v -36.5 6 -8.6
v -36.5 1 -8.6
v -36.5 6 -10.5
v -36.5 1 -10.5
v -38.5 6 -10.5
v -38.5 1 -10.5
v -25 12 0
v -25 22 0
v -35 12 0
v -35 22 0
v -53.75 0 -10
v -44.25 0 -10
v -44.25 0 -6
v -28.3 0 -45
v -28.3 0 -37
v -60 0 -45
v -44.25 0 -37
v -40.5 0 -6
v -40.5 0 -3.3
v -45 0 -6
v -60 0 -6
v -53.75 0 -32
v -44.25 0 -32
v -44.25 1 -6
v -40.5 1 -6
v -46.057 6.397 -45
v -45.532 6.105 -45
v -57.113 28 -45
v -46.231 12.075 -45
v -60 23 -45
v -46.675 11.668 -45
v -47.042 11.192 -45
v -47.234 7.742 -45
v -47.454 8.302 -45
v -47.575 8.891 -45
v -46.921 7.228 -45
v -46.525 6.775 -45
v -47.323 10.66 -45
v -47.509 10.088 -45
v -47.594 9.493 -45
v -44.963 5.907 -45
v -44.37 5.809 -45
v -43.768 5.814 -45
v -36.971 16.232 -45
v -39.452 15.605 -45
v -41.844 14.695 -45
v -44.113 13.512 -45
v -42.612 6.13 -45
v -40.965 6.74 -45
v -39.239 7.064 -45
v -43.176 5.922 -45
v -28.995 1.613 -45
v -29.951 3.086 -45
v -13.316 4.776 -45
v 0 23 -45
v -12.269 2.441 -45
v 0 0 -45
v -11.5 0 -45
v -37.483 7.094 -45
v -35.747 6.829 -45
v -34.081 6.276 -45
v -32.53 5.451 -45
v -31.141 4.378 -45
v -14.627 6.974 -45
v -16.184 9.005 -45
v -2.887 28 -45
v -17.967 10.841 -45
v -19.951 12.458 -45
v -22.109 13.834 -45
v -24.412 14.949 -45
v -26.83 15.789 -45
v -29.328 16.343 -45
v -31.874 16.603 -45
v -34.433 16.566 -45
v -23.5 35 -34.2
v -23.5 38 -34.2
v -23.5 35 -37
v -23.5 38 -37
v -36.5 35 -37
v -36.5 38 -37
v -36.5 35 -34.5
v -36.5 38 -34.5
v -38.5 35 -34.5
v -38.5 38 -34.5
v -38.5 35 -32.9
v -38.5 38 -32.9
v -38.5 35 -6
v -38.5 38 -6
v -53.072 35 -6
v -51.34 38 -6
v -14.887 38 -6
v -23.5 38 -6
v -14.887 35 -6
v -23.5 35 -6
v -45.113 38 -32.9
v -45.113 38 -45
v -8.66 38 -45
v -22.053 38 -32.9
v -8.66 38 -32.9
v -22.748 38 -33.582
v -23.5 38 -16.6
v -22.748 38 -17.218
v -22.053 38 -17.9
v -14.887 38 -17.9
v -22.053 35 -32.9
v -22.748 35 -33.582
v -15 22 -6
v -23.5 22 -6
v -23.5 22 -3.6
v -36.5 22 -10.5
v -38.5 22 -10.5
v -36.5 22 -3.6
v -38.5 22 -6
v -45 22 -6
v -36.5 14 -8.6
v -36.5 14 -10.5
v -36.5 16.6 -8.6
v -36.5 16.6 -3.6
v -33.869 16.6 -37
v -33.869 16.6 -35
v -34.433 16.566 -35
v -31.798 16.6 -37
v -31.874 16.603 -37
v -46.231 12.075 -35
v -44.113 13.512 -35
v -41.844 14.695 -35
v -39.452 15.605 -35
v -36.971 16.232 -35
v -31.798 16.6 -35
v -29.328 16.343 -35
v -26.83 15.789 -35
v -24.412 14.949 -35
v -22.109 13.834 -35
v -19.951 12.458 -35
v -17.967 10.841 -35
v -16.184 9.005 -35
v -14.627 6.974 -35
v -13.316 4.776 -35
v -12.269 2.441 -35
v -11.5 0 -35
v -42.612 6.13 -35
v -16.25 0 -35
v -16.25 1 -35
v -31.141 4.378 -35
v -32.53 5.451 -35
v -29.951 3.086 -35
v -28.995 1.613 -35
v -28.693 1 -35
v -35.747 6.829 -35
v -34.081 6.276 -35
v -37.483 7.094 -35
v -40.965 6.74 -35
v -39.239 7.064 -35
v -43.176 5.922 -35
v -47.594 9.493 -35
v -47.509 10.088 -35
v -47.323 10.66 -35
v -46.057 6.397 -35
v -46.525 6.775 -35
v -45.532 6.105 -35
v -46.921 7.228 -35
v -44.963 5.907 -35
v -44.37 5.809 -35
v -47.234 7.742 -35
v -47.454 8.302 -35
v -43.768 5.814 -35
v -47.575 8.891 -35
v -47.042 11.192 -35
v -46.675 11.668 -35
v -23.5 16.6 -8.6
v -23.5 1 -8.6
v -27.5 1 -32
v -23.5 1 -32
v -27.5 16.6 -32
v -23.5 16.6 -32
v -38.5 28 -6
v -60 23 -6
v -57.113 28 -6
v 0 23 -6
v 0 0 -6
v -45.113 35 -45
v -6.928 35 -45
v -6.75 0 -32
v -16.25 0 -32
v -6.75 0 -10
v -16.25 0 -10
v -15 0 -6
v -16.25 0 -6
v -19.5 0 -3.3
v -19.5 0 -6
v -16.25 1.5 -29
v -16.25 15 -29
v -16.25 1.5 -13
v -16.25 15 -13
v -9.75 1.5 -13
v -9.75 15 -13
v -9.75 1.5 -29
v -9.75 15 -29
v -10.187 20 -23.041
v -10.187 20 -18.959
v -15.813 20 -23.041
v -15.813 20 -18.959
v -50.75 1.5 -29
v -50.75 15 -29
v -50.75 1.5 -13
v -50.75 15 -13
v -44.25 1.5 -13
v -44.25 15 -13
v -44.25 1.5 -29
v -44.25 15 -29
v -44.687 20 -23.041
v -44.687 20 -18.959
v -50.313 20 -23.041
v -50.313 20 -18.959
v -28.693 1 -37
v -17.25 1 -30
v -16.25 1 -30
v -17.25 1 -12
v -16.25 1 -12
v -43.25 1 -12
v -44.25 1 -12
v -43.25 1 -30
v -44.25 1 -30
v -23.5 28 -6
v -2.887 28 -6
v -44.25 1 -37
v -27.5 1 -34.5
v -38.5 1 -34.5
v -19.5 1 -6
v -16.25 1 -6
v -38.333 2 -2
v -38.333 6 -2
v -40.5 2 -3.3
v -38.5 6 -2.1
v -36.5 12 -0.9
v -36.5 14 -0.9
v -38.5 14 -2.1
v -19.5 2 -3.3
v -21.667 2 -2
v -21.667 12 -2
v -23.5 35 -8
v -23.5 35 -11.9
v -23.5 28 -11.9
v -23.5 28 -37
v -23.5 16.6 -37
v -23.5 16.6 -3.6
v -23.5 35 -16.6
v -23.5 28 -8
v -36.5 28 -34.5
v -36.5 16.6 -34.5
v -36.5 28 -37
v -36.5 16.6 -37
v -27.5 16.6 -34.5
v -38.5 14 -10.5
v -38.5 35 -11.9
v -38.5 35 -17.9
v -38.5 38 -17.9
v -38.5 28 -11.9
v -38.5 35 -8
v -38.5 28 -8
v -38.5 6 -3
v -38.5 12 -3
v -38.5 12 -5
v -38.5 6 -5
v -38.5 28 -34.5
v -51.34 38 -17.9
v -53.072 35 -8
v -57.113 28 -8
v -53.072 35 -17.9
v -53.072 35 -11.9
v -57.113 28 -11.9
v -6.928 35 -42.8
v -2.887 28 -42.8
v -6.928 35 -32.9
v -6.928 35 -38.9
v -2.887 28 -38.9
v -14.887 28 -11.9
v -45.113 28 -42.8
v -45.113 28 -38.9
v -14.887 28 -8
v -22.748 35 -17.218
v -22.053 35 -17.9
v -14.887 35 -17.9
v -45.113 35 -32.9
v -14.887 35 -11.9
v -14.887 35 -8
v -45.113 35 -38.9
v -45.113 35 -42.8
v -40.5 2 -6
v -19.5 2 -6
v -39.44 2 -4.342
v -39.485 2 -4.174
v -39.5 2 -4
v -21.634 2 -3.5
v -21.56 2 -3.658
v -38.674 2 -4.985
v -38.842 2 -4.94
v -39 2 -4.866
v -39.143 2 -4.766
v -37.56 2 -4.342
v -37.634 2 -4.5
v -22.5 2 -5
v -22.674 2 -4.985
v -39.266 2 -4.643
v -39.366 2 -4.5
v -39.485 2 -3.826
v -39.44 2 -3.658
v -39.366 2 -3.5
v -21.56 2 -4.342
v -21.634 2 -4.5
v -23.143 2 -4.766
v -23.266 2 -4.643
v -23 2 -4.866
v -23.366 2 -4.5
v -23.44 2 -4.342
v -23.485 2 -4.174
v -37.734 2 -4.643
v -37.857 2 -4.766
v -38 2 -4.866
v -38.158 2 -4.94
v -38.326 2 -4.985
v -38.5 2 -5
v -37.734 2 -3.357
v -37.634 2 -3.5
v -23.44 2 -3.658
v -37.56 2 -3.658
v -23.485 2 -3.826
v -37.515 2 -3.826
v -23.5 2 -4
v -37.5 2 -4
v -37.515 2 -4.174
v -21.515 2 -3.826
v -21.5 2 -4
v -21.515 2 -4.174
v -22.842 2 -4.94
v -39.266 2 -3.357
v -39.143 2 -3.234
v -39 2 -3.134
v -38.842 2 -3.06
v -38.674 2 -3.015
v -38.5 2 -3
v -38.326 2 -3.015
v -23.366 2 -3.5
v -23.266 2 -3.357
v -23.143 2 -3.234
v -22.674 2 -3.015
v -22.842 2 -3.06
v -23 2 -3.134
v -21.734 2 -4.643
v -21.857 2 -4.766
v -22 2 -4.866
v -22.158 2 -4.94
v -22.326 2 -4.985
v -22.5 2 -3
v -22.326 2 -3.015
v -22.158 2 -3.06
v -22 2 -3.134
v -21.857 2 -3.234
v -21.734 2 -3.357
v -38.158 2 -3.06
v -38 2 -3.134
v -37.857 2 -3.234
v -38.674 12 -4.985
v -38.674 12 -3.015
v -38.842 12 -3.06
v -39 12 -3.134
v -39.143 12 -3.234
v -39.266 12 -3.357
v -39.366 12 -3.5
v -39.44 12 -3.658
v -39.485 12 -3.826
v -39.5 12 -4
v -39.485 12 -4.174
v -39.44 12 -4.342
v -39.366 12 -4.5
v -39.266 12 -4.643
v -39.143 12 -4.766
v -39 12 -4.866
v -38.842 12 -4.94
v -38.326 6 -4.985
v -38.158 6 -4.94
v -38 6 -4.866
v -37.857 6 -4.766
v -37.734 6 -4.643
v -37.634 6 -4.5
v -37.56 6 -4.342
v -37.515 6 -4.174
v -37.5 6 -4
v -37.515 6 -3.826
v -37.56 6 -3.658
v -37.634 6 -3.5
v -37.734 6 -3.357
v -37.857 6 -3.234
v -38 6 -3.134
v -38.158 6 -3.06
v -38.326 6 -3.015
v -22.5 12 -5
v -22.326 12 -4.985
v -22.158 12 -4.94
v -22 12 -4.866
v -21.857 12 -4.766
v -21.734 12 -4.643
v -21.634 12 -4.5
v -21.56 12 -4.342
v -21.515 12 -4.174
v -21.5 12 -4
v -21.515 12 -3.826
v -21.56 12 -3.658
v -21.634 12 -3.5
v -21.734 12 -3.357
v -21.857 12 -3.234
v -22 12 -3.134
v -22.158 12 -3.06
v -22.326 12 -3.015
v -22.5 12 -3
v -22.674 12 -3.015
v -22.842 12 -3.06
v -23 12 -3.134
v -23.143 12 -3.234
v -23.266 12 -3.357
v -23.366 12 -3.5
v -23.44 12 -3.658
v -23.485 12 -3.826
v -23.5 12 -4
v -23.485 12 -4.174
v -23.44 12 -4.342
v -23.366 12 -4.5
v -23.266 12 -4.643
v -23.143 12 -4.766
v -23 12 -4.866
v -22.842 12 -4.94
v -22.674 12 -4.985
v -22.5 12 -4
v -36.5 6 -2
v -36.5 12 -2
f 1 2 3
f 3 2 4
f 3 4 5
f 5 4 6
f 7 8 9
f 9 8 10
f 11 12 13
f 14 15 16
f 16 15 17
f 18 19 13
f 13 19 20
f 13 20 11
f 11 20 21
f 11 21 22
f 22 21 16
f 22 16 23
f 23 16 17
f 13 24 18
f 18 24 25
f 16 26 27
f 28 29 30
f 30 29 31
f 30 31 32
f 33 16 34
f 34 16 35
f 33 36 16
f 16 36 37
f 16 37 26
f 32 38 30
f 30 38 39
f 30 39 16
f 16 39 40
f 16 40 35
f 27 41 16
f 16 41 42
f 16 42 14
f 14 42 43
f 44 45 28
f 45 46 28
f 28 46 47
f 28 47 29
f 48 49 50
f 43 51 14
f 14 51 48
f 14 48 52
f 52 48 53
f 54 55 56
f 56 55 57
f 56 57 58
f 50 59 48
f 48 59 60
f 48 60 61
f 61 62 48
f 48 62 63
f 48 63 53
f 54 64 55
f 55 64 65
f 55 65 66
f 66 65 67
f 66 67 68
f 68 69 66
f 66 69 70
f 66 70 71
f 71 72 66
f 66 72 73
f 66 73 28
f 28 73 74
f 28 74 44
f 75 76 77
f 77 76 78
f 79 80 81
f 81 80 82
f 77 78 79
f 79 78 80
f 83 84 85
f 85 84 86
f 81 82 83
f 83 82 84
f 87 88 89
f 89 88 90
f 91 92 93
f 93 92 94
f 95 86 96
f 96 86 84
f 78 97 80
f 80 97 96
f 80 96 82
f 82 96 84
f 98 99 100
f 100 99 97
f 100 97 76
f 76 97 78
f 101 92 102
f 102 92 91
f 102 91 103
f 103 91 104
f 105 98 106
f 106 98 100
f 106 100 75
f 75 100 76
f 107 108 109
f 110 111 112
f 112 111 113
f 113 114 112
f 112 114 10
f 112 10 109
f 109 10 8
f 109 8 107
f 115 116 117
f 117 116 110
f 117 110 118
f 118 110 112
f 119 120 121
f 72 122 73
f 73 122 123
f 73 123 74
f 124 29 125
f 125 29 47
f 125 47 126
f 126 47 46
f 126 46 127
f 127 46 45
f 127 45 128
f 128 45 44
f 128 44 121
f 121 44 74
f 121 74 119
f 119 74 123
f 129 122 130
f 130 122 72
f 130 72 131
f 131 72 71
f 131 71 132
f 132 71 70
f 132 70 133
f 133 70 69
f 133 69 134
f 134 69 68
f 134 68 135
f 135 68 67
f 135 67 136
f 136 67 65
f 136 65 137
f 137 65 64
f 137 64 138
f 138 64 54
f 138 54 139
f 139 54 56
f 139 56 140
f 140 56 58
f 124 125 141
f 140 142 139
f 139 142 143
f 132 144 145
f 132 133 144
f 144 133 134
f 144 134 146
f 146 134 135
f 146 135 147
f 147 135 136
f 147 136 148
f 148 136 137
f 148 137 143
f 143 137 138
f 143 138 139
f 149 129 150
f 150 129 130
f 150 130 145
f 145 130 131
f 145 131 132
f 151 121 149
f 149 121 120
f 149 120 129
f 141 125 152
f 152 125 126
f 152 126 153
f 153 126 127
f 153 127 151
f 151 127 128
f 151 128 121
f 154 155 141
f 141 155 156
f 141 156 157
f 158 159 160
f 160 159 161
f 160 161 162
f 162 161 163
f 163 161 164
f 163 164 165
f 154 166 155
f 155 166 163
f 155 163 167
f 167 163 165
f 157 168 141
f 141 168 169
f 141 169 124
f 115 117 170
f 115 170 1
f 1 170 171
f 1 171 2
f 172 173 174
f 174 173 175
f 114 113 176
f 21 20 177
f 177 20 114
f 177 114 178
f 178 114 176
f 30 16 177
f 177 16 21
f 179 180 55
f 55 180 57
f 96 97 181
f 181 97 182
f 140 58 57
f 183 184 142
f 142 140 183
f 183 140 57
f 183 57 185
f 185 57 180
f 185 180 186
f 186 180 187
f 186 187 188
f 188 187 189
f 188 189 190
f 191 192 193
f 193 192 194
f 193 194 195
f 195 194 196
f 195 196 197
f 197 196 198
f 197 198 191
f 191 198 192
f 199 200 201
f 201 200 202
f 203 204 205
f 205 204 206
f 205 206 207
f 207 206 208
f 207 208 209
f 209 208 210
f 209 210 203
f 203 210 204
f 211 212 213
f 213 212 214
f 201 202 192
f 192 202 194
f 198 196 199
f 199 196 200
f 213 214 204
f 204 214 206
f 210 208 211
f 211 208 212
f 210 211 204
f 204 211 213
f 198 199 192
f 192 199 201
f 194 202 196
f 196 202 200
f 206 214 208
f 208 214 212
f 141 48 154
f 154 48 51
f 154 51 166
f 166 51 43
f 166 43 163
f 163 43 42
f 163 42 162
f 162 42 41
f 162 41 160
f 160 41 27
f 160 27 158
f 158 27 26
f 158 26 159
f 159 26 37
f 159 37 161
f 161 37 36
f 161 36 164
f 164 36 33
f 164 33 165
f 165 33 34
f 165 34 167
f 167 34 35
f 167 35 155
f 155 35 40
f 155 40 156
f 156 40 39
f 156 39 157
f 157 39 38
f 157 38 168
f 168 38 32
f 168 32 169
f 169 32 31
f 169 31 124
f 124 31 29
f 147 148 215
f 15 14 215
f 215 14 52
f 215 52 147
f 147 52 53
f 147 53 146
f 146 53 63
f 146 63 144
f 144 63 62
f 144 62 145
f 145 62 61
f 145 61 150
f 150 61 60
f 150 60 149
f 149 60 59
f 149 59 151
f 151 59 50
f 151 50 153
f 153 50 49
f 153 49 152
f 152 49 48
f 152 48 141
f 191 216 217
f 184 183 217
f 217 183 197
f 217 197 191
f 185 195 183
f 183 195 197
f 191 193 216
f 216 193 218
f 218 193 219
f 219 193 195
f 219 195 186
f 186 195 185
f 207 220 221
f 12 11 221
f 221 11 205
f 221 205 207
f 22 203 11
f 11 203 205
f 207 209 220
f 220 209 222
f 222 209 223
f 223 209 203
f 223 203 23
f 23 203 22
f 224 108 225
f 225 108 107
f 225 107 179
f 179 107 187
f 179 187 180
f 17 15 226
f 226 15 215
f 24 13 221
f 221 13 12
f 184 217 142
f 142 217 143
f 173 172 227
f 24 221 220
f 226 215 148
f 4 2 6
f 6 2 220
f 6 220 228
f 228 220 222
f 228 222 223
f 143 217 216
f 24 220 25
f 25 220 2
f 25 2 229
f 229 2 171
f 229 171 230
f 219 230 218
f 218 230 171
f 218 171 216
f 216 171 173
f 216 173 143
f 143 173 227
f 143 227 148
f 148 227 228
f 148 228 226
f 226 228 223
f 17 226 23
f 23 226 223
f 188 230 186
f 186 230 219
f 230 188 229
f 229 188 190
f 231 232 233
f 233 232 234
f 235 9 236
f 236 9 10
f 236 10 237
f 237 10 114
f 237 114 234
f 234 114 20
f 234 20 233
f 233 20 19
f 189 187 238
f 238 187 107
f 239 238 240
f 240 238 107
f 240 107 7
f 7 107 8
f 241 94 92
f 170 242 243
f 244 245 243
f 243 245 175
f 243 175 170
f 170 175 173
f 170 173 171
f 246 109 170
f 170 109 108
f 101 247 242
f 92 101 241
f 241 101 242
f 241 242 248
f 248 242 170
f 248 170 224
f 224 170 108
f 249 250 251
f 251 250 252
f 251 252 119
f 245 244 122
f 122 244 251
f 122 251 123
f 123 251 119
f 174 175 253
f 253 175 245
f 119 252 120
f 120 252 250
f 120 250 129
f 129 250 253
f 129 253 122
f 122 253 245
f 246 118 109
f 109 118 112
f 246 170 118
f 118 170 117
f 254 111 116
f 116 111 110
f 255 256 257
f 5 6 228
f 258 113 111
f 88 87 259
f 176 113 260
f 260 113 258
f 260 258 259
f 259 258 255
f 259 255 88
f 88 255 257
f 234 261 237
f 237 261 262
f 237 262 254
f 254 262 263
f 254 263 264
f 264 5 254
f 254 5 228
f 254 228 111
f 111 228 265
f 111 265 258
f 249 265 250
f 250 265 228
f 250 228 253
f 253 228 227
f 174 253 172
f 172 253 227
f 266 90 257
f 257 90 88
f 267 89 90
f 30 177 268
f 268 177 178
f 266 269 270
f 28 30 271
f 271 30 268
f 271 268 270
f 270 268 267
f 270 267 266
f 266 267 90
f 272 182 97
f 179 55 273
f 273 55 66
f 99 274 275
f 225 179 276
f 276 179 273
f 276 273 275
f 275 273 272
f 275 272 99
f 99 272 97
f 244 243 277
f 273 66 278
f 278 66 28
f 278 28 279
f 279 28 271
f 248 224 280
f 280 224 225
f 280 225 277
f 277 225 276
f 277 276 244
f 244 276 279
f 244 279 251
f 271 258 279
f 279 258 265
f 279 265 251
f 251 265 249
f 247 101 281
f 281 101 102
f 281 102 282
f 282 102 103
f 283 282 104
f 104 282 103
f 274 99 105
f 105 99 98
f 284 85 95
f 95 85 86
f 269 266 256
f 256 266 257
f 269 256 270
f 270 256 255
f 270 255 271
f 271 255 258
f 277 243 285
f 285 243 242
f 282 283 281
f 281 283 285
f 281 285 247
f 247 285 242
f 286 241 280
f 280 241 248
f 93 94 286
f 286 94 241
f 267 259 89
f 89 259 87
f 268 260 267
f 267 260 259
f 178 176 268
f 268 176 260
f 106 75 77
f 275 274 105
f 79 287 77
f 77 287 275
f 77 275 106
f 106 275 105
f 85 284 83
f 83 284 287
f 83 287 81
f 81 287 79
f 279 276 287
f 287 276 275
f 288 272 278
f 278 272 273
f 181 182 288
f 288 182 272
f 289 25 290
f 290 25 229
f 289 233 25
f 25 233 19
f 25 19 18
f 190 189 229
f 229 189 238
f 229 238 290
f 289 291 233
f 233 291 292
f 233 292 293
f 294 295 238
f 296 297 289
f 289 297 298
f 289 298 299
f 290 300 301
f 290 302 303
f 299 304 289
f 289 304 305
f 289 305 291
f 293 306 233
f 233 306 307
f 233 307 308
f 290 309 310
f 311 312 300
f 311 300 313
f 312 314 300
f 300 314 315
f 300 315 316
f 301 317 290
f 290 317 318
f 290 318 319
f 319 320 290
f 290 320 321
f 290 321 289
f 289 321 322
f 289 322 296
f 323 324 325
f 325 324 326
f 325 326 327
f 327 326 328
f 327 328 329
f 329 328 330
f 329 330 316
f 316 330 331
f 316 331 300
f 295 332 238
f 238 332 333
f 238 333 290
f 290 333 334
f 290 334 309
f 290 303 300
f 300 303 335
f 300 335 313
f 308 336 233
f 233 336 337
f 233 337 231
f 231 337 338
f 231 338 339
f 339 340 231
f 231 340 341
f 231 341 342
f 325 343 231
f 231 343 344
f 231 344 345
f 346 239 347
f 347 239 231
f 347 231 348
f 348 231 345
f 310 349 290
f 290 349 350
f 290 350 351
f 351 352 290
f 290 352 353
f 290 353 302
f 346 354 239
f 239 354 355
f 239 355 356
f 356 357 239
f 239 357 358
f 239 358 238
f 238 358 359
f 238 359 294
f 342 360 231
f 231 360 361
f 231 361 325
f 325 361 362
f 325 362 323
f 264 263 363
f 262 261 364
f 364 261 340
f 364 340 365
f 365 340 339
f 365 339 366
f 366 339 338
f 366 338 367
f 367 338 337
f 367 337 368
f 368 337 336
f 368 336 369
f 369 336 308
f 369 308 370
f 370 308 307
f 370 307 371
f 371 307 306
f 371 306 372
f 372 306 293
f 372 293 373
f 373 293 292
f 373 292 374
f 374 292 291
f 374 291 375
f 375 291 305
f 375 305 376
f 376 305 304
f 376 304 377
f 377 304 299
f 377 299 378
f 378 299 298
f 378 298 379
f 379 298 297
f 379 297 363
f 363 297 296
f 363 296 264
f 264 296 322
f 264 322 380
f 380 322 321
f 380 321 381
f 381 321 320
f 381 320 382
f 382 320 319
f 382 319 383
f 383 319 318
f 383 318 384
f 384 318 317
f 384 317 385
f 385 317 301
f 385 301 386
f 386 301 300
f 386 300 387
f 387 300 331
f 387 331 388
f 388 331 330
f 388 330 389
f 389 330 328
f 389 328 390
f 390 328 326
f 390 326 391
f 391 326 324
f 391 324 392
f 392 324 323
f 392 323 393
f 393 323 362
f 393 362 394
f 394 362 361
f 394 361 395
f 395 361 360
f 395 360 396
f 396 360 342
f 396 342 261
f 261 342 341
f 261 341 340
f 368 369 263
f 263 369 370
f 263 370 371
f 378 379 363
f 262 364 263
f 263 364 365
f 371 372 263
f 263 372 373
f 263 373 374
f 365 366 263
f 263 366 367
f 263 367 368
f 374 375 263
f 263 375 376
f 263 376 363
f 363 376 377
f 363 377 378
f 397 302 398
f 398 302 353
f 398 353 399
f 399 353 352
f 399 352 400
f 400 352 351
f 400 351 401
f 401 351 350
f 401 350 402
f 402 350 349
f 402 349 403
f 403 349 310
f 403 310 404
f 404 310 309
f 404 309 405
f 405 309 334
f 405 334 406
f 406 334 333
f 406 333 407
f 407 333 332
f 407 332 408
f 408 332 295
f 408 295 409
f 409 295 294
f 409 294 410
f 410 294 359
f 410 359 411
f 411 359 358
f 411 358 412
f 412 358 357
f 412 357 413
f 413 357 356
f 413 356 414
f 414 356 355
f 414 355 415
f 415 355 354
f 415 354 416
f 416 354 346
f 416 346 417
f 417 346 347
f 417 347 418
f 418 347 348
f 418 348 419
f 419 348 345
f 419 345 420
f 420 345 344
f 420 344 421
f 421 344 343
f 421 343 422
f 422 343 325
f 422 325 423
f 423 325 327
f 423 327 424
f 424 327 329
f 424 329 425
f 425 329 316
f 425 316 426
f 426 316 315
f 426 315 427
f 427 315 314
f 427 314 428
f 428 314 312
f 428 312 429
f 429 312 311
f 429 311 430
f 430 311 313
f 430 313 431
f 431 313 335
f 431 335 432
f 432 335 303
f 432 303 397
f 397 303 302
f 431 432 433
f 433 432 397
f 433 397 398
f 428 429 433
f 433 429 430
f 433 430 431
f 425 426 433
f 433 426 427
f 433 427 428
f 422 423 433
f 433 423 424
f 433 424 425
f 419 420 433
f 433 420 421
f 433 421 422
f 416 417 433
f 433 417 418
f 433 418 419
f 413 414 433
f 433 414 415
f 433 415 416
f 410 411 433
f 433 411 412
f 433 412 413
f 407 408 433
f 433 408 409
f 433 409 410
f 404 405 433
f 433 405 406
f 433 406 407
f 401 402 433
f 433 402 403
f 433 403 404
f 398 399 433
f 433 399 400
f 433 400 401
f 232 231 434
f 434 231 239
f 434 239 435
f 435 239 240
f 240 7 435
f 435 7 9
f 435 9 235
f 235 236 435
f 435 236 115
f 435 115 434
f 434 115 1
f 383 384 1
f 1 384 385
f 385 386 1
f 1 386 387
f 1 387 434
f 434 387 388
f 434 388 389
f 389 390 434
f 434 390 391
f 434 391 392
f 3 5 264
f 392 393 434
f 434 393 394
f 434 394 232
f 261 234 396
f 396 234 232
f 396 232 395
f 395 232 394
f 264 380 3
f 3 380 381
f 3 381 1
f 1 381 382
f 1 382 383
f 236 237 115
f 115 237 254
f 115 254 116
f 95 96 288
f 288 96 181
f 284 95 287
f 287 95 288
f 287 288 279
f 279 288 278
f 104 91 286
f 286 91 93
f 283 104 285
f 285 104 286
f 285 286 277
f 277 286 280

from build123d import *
from OCP.BRepFilletAPI import BRepFilletAPI_MakeChamfer

# Parameters (mm, degrees)
SKETCH1_W                = 60
SKETCH1_H                = 45
BOSS_EXTRUDE1_DEPTH      = 30
SKETCH2_W                = 6.5
SKETCH2_H                = 16
CUT_EXTRUDE1_DEPTH       = 20
CHAMFER1_SIZE            = 5
CHAMFER1_SIZE2           = 0.437443318
CHAMFER2_SIZE            = 5
CHAMFER2_SIZE2           = 5.958767963
CUT_EXTRUDE2_DEPTH       = 10
CHAMFER3_SIZE            = 3
CHAMFER3_SIZE2           = 1.5
CUT_EXTRUDE3_REACH       = 82.777
SKETCH6_W                = 28
SKETCH6_H                = 31
CUT_EXTRUDE4_DEPTH       = 1
BOSS_EXTRUDE2_DEPTH      = 22
CUT_EXTRUDE5_REACH       = 80.16
SKETCH7_W                = 13
SKETCH7_H                = 23.4
CUT_EXTRUDE6_REACH       = 95.485
CUT_EXTRUDE6_START       = -15.6
SKETCH8_W                = 13
SKETCH8_H                = 5
CUT_EXTRUDE7_REACH       = 80.16
BOSS_EXTRUDE3_DEPTH      = 16
CHAMFER6_SIZE            = 15
CHAMFER6_SIZE2           = 8.660254038
SKETCH14_R               = 11
CUT_EXTRUDE8_DEPTH       = 10
SKETCH15_W               = 70
SKETCH15_H               = 15
CUT_EXTRUDE9_DEPTH       = 10
CUT_EXTRUDE10_DEPTH      = 71.3651192
CUT_EXTRUDE10_DEPTH_BACK = 71.3651192
SKETCH16_W               = 6
SKETCH16_H               = 7
SKETCH16_W_2             = 2
CUT_EXTRUDE11_DEPTH      = 71.3651192
CUT_EXTRUDE11_DEPTH_BACK = 71.3651192
SKETCH17_W               = 6
SKETCH17_H               = 7
SKETCH17_W_2             = 2.2
SKETCH18_W               = 21
SKETCH18_H               = 8
CUT_EXTRUDE12_DEPTH      = 2
SKETCH19_R               = 1
SKETCH19_W               = 18.34106835
SKETCH19_H               = 5.189180314
CUT_EXTRUDE13_DEPTH      = 10
CUT_EXTRUDE14_REACH      = 80.957
SKETCH20_W               = 2
SKETCH20_H               = 8
CUT_EXTRUDE15_REACH      = 86.077
SKETCH21_W               = 16.800854114
SKETCH21_H               = 23.16859679
SKETCH21_W_2             = 25.313746617
SKETCH21_H_2             = 27.258932471


with BuildPart() as part:
    # Sketch1 → Boss-Extrude1 (new body)
    with BuildSketch(Plane(origin=(0, 0, 0), x_dir=(1, 0, 0), z_dir=(0, 1, 0))):
        with Locations((-30, 22.5)):
            Rectangle(SKETCH1_W, SKETCH1_H)
    extrude(amount=BOSS_EXTRUDE1_DEPTH)

    # Sketch2 → Cut-Extrude1 (cut)
    with BuildSketch(Plane(origin=(0, 0, 0), x_dir=(-1, 0, 0), z_dir=(0, -1, 0))):
        with Locations((47.5, 21)):
            Rectangle(SKETCH2_W, SKETCH2_H)
        with Locations((13, 21)):
            Rectangle(SKETCH2_W, SKETCH2_H)
    extrude(amount=-CUT_EXTRUDE1_DEPTH, mode=Mode.SUBTRACT)

    # Chamfer1: one chamfer whose edges measure the first distance from different faces: ONE call of the kernel's chamfer builder (chamfer() names one face for all edges)
    chamfer1_edges_1 = [part.edges().sort_by_distance(p)[0] for p in [
        (-50.75, 20, -21),
    ]]
    chamfer1_side_1 = [part.faces().sort_by_distance(p)[0] for p in [
        (-50.75, 10, -21),
    ]]
    chamfer1_edges_2 = [part.edges().sort_by_distance(p)[0] for p in [
        (-44.25, 20, -21),
    ]]
    chamfer1_side_2 = [part.faces().sort_by_distance(p)[0] for p in [
        (-44.25, 10, -21),
    ]]
    chamfer1_edges_3 = [part.edges().sort_by_distance(p)[0] for p in [
        (-16.25, 20, -21),
    ]]
    chamfer1_side_3 = [part.faces().sort_by_distance(p)[0] for p in [
        (-16.25, 10, -21),
    ]]
    chamfer1_edges_4 = [part.edges().sort_by_distance(p)[0] for p in [
        (-9.75, 20, -21),
    ]]
    chamfer1_side_4 = [part.faces().sort_by_distance(p)[0] for p in [
        (-9.75, 10, -21),
    ]]
    chamfer1 = BRepFilletAPI_MakeChamfer(part.part.solid().wrapped)
    for e in chamfer1_edges_1:
        chamfer1.Add(CHAMFER1_SIZE, CHAMFER1_SIZE2, e.wrapped, chamfer1_side_1[0].wrapped)  # the first distance lies on this face
    for e in chamfer1_edges_2:
        chamfer1.Add(CHAMFER1_SIZE, CHAMFER1_SIZE2, e.wrapped, chamfer1_side_2[0].wrapped)  # the first distance lies on this face
    for e in chamfer1_edges_3:
        chamfer1.Add(CHAMFER1_SIZE, CHAMFER1_SIZE2, e.wrapped, chamfer1_side_3[0].wrapped)  # the first distance lies on this face
    for e in chamfer1_edges_4:
        chamfer1.Add(CHAMFER1_SIZE, CHAMFER1_SIZE2, e.wrapped, chamfer1_side_4[0].wrapped)  # the first distance lies on this face
    add(Compound.cast(chamfer1.Shape()), mode=Mode.REPLACE)

    # Chamfer2: one chamfer whose edges measure the first distance from different faces: ONE call of the kernel's chamfer builder (chamfer() names one face for all edges)
    chamfer2_edges_1 = [part.edges().sort_by_distance(p)[0] for p in [
        (-47.5, 20, -29),
    ]]
    chamfer2_side_1 = [part.faces().sort_by_distance(p)[0] for p in [
        (-47.5, 9.857394508, -29),
    ]]
    chamfer2_edges_2 = [part.edges().sort_by_distance(p)[0] for p in [
        (-13, 20, -29),
    ]]
    chamfer2_side_2 = [part.faces().sort_by_distance(p)[0] for p in [
        (-13, 9.857394508, -29),
    ]]
    chamfer2_edges_3 = [part.edges().sort_by_distance(p)[0] for p in [
        (-13, 20, -13),
    ]]
    chamfer2_side_3 = [part.faces().sort_by_distance(p)[0] for p in [
        (-13, 9.857394508, -13),
    ]]
    chamfer2_edges_4 = [part.edges().sort_by_distance(p)[0] for p in [
        (-47.5, 20, -13),
    ]]
    chamfer2_side_4 = [part.faces().sort_by_distance(p)[0] for p in [
        (-47.5, 9.857394508, -13),
    ]]
    chamfer2 = BRepFilletAPI_MakeChamfer(part.part.solid().wrapped)
    for e in chamfer2_edges_1:
        chamfer2.Add(CHAMFER2_SIZE, CHAMFER2_SIZE2, e.wrapped, chamfer2_side_1[0].wrapped)  # the first distance lies on this face
    for e in chamfer2_edges_2:
        chamfer2.Add(CHAMFER2_SIZE, CHAMFER2_SIZE2, e.wrapped, chamfer2_side_2[0].wrapped)  # the first distance lies on this face
    for e in chamfer2_edges_3:
        chamfer2.Add(CHAMFER2_SIZE, CHAMFER2_SIZE2, e.wrapped, chamfer2_side_3[0].wrapped)  # the first distance lies on this face
    for e in chamfer2_edges_4:
        chamfer2.Add(CHAMFER2_SIZE, CHAMFER2_SIZE2, e.wrapped, chamfer2_side_4[0].wrapped)  # the first distance lies on this face
    add(Compound.cast(chamfer2.Shape()), mode=Mode.REPLACE)

    # Sketch4 → Cut-Extrude2 (cut)
    with BuildSketch(Plane(origin=(0, 0, -45), x_dir=(-1, 0, 0), z_dir=(0, 0, -1))):
        with BuildLine():
            Line((11.5, 0), (28.3, 0))
            ThreePointArc((28.3, 0), (34.080602383, 6.276082414), (42.61191296, 6.13008847))
            ThreePointArc((42.61191296, 6.13008847), (47.088831578, 7.478397416), (46.230644896, 12.074510224))
            ThreePointArc((46.230644896, 12.074510224), (25.608734298, 15.404376803), (11.5, 0))
        make_face()
    extrude(amount=-CUT_EXTRUDE2_DEPTH, mode=Mode.SUBTRACT)

    # Chamfer3
    chamfer3_edges = [part.edges().sort_by_distance(p)[0] for p in [
        (-50.75, 0, -21),
        (-47.5, 0, -29),
        (-44.25, 0, -21),
        (-47.5, 0, -13),
        (-16.25, 0, -21),
        (-13, 0, -29),
        (-9.75, 0, -21),
        (-13, 0, -13),
    ]]
    chamfer3_side = [part.faces().sort_by_distance(p)[0] for p in [
        (-30.707745267, 0, -21.36919105),
    ]]
    chamfer(chamfer3_edges, length=CHAMFER3_SIZE, length2=CHAMFER3_SIZE2, reference=chamfer3_side[0])

    # Sketch5 → Cut-Extrude3 (cut, up to next)
    with BuildSketch(Plane.ZY.offset(60), mode=Mode.PRIVATE) as cut_extrude3_sk1:
        Polygon((-45, 30), (0, 30), (0, 0), (-6, 0), (-6, 22), (-45, 22), align=None)
    cut_extrude3_tool1 = extrude(cut_extrude3_sk1.sketch, amount=-CUT_EXTRUDE3_REACH, mode=Mode.PRIVATE) & part.part
    add(cut_extrude3_tool1.solids().sort_by_distance((-60, 29.459167, -22.5))[0], mode=Mode.SUBTRACT)

    # Sketch6 → Cut-Extrude4 (cut)
    with BuildSketch(Plane(origin=(0, 0, 0), x_dir=(-1, 0, 0), z_dir=(0, -1, 0))):
        with Locations((30.25, 21.5)):
            Rectangle(SKETCH6_W, SKETCH6_H)
    extrude(amount=-CUT_EXTRUDE4_DEPTH, mode=Mode.SUBTRACT)

    # Sketch12 → Boss-Extrude2 (add)
    with BuildSketch(Plane.XZ):
        Polygon((-45, -6), (-35, 0), (-25, 0), (-15, -6), align=None)
    extrude(amount=-BOSS_EXTRUDE2_DEPTH)

    # Sketch7 → Cut-Extrude5 (cut, up to next)
    with BuildSketch(Plane(origin=(0, 22, 0), x_dir=(1, 0, 0), z_dir=(0, 1, 0)), mode=Mode.PRIVATE) as cut_extrude5_sk1:
        with Locations((-30, 20.3)):
            Rectangle(SKETCH7_W, SKETCH7_H)
    cut_extrude5_tool1 = extrude(cut_extrude5_sk1.sketch, amount=-CUT_EXTRUDE5_REACH, mode=Mode.PRIVATE) & part.part
    add(cut_extrude5_tool1.solids().sort_by_distance((-30, 22, -20.3))[0], mode=Mode.SUBTRACT)

    # Sketch8 → Cut-Extrude6 (cut, up to next)
    with BuildSketch(Plane.XZ.offset(-1).offset(CUT_EXTRUDE6_START), mode=Mode.PRIVATE) as cut_extrude6_sk1:
        with Locations((-30, -6.1)):
            Rectangle(SKETCH8_W, SKETCH8_H)
    cut_extrude6_tool1 = extrude(cut_extrude6_sk1.sketch, amount=-CUT_EXTRUDE6_REACH, mode=Mode.PRIVATE) & part.part
    # Sketch8 → Cut-Extrude6 (cut, up to next)
    with BuildSketch(Plane.XZ.offset(-1).offset(CUT_EXTRUDE6_START), mode=Mode.PRIVATE) as cut_extrude6_sk2:
        with Locations((-30, -34.5)):
            Rectangle(SKETCH8_W, SKETCH8_H)
    cut_extrude6_tool2 = extrude(cut_extrude6_sk2.sketch, amount=-CUT_EXTRUDE6_REACH, mode=Mode.PRIVATE) & part.part
    add(cut_extrude6_tool1.solids().sort_by_distance((-30, 16.6, -6.1))[0], mode=Mode.SUBTRACT)
    add(cut_extrude6_tool2.solids().sort_by_distance((-30, 16.6, -34.5))[0], mode=Mode.SUBTRACT)

    # Sketch10 → Cut-Extrude7 (cut, up to next)
    with BuildSketch(Plane(origin=(0, 22, 0), x_dir=(1, 0, 0), z_dir=(0, 1, 0)), mode=Mode.PRIVATE) as cut_extrude7_sk1:
        Polygon((-27.5, 32), (-27.5, 34.5), (-38.5, 34.5), (-38.5, 10.5), (-36.5, 10.5), (-36.5, 32), align=None)
    cut_extrude7_tool1 = extrude(cut_extrude7_sk1.sketch, amount=-CUT_EXTRUDE7_REACH, mode=Mode.PRIVATE) & part.part
    add(cut_extrude7_tool1.solids().sort_by_distance((-27.764008, 22, -33.25))[0], mode=Mode.SUBTRACT)

    # Sketch13 → Boss-Extrude3 (add)
    with BuildSketch(Plane(origin=(0, 22, 0), x_dir=(1, 0, 0), z_dir=(0, 1, 0))):
        Polygon((-60, 45), (0, 45), (0, 6), (-15, 6), (-23.5, 6), (-23.5, 37), (-36.5, 37), (-36.5, 34.5), (-38.5, 34.5), (-38.5, 6), (-60, 6), align=None)
    extrude(amount=BOSS_EXTRUDE3_DEPTH)

    # Chamfer6: one chamfer whose edges measure the first distance from different faces: ONE call of the kernel's chamfer builder (chamfer() names one face for all edges)
    chamfer6_edges_1 = [part.edges().sort_by_distance(p)[0] for p in [
        (-60, 38, -25.5),
    ]]
    chamfer6_side_1 = [part.faces().sort_by_distance(p)[0] for p in [
        (-60, 19, -25.5),
    ]]
    chamfer6_edges_2 = [part.edges().sort_by_distance(p)[0] for p in [
        (0, 38, -25.5),
    ]]
    chamfer6_side_2 = [part.faces().sort_by_distance(p)[0] for p in [
        (0, 19, -25.5),
    ]]
    chamfer6 = BRepFilletAPI_MakeChamfer(part.part.solid().wrapped)
    for e in chamfer6_edges_1:
        chamfer6.Add(CHAMFER6_SIZE, CHAMFER6_SIZE2, e.wrapped, chamfer6_side_1[0].wrapped)  # the first distance lies on this face
    for e in chamfer6_edges_2:
        chamfer6.Add(CHAMFER6_SIZE, CHAMFER6_SIZE2, e.wrapped, chamfer6_side_2[0].wrapped)  # the first distance lies on this face
    add(Compound.cast(chamfer6.Shape()), mode=Mode.REPLACE)

    # Sketch14 → Cut-Extrude8 (cut)
    with BuildSketch(Plane(origin=(0, 38, 0), x_dir=(1, 0, 0), z_dir=(0, 1, 0))):
        with Locations((-30.1, 25.4)):
            Circle(SKETCH14_R)
    extrude(amount=-CUT_EXTRUDE8_DEPTH, mode=Mode.SUBTRACT)

    # Sketch15 → Cut-Extrude9 (cut)
    with BuildSketch(Plane(origin=(0, 38, 0), x_dir=(1, 0, 0), z_dir=(0, 1, 0))):
        with Locations((-30.1, 25.4)):
            Rectangle(SKETCH15_W, SKETCH15_H)
    extrude(amount=-CUT_EXTRUDE9_DEPTH, mode=Mode.SUBTRACT)

    # Sketch16 → Cut-Extrude10 (cut, two sides: drawn at the far end of the back side and taken through both)
    with BuildSketch(Plane(origin=(-38.5, 0, 0), x_dir=(0, 0, -1), z_dir=(1, 0, 0)).offset(-CUT_EXTRUDE10_DEPTH_BACK)):
        with Locations((14.9, 31.5)):
            Rectangle(SKETCH16_W, SKETCH16_H)
        with Locations((7, 31.5)):
            Rectangle(SKETCH16_W_2, SKETCH16_H)
    extrude(amount=CUT_EXTRUDE10_DEPTH + CUT_EXTRUDE10_DEPTH_BACK, mode=Mode.SUBTRACT)

    # Sketch17 → Cut-Extrude11 (cut, two sides: drawn at the far end of the back side and taken through both)
    with BuildSketch(Plane(origin=(-38.5, 0, 0), x_dir=(0, 0, -1), z_dir=(1, 0, 0)).offset(-CUT_EXTRUDE11_DEPTH_BACK)):
        with Locations((35.9, 31.5)):
            Rectangle(SKETCH17_W, SKETCH17_H)
        with Locations((43.9, 31.5)):
            Rectangle(SKETCH17_W_2, SKETCH17_H)
    extrude(amount=CUT_EXTRUDE11_DEPTH + CUT_EXTRUDE11_DEPTH_BACK, mode=Mode.SUBTRACT)

    # Sketch18 → Cut-Extrude12 (cut)
    with BuildSketch(Plane.XZ):
        with Locations((-30, -2)):
            Rectangle(SKETCH18_W, SKETCH18_H)
    extrude(amount=-CUT_EXTRUDE12_DEPTH, mode=Mode.SUBTRACT)

    # Sketch19 → Cut-Extrude13 (cut)
    with BuildSketch(Plane.XZ.offset(-2)):
        with Locations(Location((-38.5, -4, 0), (0, 0, 270))):
            Circle(SKETCH19_R)
        with Locations(Location((-22.5, -4, 0), (0, 0, 270))):
            Circle(SKETCH19_R)
        with Locations((-30, 0.594590157)):
            Rectangle(SKETCH19_W, SKETCH19_H)
    extrude(amount=-CUT_EXTRUDE13_DEPTH, mode=Mode.SUBTRACT)

    # Sketch20 → Cut-Extrude14 (cut, up to next)
    with BuildSketch(Plane(origin=(0, 0, -10.5), x_dir=(-1, 0, 0), z_dir=(0, 0, -1)), mode=Mode.PRIVATE) as cut_extrude14_sk1:
        with Locations((37.5, 10)):
            Rectangle(SKETCH20_W, SKETCH20_H)
    cut_extrude14_tool1 = extrude(cut_extrude14_sk1.sketch, amount=-CUT_EXTRUDE14_REACH, mode=Mode.PRIVATE) & part.part
    add(cut_extrude14_tool1.solids().sort_by_distance((-37.5, 10, -10.5))[0], mode=Mode.SUBTRACT)

    # Cut-Extrude15: up to this face of the body (flat: up to its plane)
    cut_extrude15_end = Plane(part.part.faces().sort_by_distance((-30, 28, -43.9))[0])
    # Sketch21 → Cut-Extrude15 (cut, up to the picked face)
    with BuildSketch(Plane(origin=(0, 38, 0), x_dir=(1, 0, 0), z_dir=(0, 1, 0)), mode=Mode.PRIVATE) as cut_extrude15_sk1:
        with Locations((-53.513675711, 40.114245734)):
            Rectangle(SKETCH21_W, SKETCH21_H)
    cut_extrude15_tool1 = split(extrude(cut_extrude15_sk1.sketch, amount=-CUT_EXTRUDE15_REACH, mode=Mode.PRIVATE), bisect_by=cut_extrude15_end, keep=Keep.BOTH, mode=Mode.PRIVATE)
    # Sketch21 → Cut-Extrude15 (cut, up to the picked face)
    with BuildSketch(Plane(origin=(0, 38, 0), x_dir=(1, 0, 0), z_dir=(0, 1, 0)), mode=Mode.PRIVATE) as cut_extrude15_sk2:
        with Locations((-2.229878037, 8.087664752)):
            Rectangle(SKETCH21_W_2, SKETCH21_H_2)
    cut_extrude15_tool2 = split(extrude(cut_extrude15_sk2.sketch, amount=-CUT_EXTRUDE15_REACH, mode=Mode.PRIVATE), bisect_by=cut_extrude15_end, keep=Keep.BOTH, mode=Mode.PRIVATE)
    add(cut_extrude15_tool1.solids().sort_by(Axis((-53.513676, 38, -40.114246), (0, -1, 0)))[0], mode=Mode.SUBTRACT)
    add(cut_extrude15_tool2.solids().sort_by(Axis((-2.229878, 38, -8.087665), (0, -1, 0)))[0], mode=Mode.SUBTRACT)


solid = part.part
